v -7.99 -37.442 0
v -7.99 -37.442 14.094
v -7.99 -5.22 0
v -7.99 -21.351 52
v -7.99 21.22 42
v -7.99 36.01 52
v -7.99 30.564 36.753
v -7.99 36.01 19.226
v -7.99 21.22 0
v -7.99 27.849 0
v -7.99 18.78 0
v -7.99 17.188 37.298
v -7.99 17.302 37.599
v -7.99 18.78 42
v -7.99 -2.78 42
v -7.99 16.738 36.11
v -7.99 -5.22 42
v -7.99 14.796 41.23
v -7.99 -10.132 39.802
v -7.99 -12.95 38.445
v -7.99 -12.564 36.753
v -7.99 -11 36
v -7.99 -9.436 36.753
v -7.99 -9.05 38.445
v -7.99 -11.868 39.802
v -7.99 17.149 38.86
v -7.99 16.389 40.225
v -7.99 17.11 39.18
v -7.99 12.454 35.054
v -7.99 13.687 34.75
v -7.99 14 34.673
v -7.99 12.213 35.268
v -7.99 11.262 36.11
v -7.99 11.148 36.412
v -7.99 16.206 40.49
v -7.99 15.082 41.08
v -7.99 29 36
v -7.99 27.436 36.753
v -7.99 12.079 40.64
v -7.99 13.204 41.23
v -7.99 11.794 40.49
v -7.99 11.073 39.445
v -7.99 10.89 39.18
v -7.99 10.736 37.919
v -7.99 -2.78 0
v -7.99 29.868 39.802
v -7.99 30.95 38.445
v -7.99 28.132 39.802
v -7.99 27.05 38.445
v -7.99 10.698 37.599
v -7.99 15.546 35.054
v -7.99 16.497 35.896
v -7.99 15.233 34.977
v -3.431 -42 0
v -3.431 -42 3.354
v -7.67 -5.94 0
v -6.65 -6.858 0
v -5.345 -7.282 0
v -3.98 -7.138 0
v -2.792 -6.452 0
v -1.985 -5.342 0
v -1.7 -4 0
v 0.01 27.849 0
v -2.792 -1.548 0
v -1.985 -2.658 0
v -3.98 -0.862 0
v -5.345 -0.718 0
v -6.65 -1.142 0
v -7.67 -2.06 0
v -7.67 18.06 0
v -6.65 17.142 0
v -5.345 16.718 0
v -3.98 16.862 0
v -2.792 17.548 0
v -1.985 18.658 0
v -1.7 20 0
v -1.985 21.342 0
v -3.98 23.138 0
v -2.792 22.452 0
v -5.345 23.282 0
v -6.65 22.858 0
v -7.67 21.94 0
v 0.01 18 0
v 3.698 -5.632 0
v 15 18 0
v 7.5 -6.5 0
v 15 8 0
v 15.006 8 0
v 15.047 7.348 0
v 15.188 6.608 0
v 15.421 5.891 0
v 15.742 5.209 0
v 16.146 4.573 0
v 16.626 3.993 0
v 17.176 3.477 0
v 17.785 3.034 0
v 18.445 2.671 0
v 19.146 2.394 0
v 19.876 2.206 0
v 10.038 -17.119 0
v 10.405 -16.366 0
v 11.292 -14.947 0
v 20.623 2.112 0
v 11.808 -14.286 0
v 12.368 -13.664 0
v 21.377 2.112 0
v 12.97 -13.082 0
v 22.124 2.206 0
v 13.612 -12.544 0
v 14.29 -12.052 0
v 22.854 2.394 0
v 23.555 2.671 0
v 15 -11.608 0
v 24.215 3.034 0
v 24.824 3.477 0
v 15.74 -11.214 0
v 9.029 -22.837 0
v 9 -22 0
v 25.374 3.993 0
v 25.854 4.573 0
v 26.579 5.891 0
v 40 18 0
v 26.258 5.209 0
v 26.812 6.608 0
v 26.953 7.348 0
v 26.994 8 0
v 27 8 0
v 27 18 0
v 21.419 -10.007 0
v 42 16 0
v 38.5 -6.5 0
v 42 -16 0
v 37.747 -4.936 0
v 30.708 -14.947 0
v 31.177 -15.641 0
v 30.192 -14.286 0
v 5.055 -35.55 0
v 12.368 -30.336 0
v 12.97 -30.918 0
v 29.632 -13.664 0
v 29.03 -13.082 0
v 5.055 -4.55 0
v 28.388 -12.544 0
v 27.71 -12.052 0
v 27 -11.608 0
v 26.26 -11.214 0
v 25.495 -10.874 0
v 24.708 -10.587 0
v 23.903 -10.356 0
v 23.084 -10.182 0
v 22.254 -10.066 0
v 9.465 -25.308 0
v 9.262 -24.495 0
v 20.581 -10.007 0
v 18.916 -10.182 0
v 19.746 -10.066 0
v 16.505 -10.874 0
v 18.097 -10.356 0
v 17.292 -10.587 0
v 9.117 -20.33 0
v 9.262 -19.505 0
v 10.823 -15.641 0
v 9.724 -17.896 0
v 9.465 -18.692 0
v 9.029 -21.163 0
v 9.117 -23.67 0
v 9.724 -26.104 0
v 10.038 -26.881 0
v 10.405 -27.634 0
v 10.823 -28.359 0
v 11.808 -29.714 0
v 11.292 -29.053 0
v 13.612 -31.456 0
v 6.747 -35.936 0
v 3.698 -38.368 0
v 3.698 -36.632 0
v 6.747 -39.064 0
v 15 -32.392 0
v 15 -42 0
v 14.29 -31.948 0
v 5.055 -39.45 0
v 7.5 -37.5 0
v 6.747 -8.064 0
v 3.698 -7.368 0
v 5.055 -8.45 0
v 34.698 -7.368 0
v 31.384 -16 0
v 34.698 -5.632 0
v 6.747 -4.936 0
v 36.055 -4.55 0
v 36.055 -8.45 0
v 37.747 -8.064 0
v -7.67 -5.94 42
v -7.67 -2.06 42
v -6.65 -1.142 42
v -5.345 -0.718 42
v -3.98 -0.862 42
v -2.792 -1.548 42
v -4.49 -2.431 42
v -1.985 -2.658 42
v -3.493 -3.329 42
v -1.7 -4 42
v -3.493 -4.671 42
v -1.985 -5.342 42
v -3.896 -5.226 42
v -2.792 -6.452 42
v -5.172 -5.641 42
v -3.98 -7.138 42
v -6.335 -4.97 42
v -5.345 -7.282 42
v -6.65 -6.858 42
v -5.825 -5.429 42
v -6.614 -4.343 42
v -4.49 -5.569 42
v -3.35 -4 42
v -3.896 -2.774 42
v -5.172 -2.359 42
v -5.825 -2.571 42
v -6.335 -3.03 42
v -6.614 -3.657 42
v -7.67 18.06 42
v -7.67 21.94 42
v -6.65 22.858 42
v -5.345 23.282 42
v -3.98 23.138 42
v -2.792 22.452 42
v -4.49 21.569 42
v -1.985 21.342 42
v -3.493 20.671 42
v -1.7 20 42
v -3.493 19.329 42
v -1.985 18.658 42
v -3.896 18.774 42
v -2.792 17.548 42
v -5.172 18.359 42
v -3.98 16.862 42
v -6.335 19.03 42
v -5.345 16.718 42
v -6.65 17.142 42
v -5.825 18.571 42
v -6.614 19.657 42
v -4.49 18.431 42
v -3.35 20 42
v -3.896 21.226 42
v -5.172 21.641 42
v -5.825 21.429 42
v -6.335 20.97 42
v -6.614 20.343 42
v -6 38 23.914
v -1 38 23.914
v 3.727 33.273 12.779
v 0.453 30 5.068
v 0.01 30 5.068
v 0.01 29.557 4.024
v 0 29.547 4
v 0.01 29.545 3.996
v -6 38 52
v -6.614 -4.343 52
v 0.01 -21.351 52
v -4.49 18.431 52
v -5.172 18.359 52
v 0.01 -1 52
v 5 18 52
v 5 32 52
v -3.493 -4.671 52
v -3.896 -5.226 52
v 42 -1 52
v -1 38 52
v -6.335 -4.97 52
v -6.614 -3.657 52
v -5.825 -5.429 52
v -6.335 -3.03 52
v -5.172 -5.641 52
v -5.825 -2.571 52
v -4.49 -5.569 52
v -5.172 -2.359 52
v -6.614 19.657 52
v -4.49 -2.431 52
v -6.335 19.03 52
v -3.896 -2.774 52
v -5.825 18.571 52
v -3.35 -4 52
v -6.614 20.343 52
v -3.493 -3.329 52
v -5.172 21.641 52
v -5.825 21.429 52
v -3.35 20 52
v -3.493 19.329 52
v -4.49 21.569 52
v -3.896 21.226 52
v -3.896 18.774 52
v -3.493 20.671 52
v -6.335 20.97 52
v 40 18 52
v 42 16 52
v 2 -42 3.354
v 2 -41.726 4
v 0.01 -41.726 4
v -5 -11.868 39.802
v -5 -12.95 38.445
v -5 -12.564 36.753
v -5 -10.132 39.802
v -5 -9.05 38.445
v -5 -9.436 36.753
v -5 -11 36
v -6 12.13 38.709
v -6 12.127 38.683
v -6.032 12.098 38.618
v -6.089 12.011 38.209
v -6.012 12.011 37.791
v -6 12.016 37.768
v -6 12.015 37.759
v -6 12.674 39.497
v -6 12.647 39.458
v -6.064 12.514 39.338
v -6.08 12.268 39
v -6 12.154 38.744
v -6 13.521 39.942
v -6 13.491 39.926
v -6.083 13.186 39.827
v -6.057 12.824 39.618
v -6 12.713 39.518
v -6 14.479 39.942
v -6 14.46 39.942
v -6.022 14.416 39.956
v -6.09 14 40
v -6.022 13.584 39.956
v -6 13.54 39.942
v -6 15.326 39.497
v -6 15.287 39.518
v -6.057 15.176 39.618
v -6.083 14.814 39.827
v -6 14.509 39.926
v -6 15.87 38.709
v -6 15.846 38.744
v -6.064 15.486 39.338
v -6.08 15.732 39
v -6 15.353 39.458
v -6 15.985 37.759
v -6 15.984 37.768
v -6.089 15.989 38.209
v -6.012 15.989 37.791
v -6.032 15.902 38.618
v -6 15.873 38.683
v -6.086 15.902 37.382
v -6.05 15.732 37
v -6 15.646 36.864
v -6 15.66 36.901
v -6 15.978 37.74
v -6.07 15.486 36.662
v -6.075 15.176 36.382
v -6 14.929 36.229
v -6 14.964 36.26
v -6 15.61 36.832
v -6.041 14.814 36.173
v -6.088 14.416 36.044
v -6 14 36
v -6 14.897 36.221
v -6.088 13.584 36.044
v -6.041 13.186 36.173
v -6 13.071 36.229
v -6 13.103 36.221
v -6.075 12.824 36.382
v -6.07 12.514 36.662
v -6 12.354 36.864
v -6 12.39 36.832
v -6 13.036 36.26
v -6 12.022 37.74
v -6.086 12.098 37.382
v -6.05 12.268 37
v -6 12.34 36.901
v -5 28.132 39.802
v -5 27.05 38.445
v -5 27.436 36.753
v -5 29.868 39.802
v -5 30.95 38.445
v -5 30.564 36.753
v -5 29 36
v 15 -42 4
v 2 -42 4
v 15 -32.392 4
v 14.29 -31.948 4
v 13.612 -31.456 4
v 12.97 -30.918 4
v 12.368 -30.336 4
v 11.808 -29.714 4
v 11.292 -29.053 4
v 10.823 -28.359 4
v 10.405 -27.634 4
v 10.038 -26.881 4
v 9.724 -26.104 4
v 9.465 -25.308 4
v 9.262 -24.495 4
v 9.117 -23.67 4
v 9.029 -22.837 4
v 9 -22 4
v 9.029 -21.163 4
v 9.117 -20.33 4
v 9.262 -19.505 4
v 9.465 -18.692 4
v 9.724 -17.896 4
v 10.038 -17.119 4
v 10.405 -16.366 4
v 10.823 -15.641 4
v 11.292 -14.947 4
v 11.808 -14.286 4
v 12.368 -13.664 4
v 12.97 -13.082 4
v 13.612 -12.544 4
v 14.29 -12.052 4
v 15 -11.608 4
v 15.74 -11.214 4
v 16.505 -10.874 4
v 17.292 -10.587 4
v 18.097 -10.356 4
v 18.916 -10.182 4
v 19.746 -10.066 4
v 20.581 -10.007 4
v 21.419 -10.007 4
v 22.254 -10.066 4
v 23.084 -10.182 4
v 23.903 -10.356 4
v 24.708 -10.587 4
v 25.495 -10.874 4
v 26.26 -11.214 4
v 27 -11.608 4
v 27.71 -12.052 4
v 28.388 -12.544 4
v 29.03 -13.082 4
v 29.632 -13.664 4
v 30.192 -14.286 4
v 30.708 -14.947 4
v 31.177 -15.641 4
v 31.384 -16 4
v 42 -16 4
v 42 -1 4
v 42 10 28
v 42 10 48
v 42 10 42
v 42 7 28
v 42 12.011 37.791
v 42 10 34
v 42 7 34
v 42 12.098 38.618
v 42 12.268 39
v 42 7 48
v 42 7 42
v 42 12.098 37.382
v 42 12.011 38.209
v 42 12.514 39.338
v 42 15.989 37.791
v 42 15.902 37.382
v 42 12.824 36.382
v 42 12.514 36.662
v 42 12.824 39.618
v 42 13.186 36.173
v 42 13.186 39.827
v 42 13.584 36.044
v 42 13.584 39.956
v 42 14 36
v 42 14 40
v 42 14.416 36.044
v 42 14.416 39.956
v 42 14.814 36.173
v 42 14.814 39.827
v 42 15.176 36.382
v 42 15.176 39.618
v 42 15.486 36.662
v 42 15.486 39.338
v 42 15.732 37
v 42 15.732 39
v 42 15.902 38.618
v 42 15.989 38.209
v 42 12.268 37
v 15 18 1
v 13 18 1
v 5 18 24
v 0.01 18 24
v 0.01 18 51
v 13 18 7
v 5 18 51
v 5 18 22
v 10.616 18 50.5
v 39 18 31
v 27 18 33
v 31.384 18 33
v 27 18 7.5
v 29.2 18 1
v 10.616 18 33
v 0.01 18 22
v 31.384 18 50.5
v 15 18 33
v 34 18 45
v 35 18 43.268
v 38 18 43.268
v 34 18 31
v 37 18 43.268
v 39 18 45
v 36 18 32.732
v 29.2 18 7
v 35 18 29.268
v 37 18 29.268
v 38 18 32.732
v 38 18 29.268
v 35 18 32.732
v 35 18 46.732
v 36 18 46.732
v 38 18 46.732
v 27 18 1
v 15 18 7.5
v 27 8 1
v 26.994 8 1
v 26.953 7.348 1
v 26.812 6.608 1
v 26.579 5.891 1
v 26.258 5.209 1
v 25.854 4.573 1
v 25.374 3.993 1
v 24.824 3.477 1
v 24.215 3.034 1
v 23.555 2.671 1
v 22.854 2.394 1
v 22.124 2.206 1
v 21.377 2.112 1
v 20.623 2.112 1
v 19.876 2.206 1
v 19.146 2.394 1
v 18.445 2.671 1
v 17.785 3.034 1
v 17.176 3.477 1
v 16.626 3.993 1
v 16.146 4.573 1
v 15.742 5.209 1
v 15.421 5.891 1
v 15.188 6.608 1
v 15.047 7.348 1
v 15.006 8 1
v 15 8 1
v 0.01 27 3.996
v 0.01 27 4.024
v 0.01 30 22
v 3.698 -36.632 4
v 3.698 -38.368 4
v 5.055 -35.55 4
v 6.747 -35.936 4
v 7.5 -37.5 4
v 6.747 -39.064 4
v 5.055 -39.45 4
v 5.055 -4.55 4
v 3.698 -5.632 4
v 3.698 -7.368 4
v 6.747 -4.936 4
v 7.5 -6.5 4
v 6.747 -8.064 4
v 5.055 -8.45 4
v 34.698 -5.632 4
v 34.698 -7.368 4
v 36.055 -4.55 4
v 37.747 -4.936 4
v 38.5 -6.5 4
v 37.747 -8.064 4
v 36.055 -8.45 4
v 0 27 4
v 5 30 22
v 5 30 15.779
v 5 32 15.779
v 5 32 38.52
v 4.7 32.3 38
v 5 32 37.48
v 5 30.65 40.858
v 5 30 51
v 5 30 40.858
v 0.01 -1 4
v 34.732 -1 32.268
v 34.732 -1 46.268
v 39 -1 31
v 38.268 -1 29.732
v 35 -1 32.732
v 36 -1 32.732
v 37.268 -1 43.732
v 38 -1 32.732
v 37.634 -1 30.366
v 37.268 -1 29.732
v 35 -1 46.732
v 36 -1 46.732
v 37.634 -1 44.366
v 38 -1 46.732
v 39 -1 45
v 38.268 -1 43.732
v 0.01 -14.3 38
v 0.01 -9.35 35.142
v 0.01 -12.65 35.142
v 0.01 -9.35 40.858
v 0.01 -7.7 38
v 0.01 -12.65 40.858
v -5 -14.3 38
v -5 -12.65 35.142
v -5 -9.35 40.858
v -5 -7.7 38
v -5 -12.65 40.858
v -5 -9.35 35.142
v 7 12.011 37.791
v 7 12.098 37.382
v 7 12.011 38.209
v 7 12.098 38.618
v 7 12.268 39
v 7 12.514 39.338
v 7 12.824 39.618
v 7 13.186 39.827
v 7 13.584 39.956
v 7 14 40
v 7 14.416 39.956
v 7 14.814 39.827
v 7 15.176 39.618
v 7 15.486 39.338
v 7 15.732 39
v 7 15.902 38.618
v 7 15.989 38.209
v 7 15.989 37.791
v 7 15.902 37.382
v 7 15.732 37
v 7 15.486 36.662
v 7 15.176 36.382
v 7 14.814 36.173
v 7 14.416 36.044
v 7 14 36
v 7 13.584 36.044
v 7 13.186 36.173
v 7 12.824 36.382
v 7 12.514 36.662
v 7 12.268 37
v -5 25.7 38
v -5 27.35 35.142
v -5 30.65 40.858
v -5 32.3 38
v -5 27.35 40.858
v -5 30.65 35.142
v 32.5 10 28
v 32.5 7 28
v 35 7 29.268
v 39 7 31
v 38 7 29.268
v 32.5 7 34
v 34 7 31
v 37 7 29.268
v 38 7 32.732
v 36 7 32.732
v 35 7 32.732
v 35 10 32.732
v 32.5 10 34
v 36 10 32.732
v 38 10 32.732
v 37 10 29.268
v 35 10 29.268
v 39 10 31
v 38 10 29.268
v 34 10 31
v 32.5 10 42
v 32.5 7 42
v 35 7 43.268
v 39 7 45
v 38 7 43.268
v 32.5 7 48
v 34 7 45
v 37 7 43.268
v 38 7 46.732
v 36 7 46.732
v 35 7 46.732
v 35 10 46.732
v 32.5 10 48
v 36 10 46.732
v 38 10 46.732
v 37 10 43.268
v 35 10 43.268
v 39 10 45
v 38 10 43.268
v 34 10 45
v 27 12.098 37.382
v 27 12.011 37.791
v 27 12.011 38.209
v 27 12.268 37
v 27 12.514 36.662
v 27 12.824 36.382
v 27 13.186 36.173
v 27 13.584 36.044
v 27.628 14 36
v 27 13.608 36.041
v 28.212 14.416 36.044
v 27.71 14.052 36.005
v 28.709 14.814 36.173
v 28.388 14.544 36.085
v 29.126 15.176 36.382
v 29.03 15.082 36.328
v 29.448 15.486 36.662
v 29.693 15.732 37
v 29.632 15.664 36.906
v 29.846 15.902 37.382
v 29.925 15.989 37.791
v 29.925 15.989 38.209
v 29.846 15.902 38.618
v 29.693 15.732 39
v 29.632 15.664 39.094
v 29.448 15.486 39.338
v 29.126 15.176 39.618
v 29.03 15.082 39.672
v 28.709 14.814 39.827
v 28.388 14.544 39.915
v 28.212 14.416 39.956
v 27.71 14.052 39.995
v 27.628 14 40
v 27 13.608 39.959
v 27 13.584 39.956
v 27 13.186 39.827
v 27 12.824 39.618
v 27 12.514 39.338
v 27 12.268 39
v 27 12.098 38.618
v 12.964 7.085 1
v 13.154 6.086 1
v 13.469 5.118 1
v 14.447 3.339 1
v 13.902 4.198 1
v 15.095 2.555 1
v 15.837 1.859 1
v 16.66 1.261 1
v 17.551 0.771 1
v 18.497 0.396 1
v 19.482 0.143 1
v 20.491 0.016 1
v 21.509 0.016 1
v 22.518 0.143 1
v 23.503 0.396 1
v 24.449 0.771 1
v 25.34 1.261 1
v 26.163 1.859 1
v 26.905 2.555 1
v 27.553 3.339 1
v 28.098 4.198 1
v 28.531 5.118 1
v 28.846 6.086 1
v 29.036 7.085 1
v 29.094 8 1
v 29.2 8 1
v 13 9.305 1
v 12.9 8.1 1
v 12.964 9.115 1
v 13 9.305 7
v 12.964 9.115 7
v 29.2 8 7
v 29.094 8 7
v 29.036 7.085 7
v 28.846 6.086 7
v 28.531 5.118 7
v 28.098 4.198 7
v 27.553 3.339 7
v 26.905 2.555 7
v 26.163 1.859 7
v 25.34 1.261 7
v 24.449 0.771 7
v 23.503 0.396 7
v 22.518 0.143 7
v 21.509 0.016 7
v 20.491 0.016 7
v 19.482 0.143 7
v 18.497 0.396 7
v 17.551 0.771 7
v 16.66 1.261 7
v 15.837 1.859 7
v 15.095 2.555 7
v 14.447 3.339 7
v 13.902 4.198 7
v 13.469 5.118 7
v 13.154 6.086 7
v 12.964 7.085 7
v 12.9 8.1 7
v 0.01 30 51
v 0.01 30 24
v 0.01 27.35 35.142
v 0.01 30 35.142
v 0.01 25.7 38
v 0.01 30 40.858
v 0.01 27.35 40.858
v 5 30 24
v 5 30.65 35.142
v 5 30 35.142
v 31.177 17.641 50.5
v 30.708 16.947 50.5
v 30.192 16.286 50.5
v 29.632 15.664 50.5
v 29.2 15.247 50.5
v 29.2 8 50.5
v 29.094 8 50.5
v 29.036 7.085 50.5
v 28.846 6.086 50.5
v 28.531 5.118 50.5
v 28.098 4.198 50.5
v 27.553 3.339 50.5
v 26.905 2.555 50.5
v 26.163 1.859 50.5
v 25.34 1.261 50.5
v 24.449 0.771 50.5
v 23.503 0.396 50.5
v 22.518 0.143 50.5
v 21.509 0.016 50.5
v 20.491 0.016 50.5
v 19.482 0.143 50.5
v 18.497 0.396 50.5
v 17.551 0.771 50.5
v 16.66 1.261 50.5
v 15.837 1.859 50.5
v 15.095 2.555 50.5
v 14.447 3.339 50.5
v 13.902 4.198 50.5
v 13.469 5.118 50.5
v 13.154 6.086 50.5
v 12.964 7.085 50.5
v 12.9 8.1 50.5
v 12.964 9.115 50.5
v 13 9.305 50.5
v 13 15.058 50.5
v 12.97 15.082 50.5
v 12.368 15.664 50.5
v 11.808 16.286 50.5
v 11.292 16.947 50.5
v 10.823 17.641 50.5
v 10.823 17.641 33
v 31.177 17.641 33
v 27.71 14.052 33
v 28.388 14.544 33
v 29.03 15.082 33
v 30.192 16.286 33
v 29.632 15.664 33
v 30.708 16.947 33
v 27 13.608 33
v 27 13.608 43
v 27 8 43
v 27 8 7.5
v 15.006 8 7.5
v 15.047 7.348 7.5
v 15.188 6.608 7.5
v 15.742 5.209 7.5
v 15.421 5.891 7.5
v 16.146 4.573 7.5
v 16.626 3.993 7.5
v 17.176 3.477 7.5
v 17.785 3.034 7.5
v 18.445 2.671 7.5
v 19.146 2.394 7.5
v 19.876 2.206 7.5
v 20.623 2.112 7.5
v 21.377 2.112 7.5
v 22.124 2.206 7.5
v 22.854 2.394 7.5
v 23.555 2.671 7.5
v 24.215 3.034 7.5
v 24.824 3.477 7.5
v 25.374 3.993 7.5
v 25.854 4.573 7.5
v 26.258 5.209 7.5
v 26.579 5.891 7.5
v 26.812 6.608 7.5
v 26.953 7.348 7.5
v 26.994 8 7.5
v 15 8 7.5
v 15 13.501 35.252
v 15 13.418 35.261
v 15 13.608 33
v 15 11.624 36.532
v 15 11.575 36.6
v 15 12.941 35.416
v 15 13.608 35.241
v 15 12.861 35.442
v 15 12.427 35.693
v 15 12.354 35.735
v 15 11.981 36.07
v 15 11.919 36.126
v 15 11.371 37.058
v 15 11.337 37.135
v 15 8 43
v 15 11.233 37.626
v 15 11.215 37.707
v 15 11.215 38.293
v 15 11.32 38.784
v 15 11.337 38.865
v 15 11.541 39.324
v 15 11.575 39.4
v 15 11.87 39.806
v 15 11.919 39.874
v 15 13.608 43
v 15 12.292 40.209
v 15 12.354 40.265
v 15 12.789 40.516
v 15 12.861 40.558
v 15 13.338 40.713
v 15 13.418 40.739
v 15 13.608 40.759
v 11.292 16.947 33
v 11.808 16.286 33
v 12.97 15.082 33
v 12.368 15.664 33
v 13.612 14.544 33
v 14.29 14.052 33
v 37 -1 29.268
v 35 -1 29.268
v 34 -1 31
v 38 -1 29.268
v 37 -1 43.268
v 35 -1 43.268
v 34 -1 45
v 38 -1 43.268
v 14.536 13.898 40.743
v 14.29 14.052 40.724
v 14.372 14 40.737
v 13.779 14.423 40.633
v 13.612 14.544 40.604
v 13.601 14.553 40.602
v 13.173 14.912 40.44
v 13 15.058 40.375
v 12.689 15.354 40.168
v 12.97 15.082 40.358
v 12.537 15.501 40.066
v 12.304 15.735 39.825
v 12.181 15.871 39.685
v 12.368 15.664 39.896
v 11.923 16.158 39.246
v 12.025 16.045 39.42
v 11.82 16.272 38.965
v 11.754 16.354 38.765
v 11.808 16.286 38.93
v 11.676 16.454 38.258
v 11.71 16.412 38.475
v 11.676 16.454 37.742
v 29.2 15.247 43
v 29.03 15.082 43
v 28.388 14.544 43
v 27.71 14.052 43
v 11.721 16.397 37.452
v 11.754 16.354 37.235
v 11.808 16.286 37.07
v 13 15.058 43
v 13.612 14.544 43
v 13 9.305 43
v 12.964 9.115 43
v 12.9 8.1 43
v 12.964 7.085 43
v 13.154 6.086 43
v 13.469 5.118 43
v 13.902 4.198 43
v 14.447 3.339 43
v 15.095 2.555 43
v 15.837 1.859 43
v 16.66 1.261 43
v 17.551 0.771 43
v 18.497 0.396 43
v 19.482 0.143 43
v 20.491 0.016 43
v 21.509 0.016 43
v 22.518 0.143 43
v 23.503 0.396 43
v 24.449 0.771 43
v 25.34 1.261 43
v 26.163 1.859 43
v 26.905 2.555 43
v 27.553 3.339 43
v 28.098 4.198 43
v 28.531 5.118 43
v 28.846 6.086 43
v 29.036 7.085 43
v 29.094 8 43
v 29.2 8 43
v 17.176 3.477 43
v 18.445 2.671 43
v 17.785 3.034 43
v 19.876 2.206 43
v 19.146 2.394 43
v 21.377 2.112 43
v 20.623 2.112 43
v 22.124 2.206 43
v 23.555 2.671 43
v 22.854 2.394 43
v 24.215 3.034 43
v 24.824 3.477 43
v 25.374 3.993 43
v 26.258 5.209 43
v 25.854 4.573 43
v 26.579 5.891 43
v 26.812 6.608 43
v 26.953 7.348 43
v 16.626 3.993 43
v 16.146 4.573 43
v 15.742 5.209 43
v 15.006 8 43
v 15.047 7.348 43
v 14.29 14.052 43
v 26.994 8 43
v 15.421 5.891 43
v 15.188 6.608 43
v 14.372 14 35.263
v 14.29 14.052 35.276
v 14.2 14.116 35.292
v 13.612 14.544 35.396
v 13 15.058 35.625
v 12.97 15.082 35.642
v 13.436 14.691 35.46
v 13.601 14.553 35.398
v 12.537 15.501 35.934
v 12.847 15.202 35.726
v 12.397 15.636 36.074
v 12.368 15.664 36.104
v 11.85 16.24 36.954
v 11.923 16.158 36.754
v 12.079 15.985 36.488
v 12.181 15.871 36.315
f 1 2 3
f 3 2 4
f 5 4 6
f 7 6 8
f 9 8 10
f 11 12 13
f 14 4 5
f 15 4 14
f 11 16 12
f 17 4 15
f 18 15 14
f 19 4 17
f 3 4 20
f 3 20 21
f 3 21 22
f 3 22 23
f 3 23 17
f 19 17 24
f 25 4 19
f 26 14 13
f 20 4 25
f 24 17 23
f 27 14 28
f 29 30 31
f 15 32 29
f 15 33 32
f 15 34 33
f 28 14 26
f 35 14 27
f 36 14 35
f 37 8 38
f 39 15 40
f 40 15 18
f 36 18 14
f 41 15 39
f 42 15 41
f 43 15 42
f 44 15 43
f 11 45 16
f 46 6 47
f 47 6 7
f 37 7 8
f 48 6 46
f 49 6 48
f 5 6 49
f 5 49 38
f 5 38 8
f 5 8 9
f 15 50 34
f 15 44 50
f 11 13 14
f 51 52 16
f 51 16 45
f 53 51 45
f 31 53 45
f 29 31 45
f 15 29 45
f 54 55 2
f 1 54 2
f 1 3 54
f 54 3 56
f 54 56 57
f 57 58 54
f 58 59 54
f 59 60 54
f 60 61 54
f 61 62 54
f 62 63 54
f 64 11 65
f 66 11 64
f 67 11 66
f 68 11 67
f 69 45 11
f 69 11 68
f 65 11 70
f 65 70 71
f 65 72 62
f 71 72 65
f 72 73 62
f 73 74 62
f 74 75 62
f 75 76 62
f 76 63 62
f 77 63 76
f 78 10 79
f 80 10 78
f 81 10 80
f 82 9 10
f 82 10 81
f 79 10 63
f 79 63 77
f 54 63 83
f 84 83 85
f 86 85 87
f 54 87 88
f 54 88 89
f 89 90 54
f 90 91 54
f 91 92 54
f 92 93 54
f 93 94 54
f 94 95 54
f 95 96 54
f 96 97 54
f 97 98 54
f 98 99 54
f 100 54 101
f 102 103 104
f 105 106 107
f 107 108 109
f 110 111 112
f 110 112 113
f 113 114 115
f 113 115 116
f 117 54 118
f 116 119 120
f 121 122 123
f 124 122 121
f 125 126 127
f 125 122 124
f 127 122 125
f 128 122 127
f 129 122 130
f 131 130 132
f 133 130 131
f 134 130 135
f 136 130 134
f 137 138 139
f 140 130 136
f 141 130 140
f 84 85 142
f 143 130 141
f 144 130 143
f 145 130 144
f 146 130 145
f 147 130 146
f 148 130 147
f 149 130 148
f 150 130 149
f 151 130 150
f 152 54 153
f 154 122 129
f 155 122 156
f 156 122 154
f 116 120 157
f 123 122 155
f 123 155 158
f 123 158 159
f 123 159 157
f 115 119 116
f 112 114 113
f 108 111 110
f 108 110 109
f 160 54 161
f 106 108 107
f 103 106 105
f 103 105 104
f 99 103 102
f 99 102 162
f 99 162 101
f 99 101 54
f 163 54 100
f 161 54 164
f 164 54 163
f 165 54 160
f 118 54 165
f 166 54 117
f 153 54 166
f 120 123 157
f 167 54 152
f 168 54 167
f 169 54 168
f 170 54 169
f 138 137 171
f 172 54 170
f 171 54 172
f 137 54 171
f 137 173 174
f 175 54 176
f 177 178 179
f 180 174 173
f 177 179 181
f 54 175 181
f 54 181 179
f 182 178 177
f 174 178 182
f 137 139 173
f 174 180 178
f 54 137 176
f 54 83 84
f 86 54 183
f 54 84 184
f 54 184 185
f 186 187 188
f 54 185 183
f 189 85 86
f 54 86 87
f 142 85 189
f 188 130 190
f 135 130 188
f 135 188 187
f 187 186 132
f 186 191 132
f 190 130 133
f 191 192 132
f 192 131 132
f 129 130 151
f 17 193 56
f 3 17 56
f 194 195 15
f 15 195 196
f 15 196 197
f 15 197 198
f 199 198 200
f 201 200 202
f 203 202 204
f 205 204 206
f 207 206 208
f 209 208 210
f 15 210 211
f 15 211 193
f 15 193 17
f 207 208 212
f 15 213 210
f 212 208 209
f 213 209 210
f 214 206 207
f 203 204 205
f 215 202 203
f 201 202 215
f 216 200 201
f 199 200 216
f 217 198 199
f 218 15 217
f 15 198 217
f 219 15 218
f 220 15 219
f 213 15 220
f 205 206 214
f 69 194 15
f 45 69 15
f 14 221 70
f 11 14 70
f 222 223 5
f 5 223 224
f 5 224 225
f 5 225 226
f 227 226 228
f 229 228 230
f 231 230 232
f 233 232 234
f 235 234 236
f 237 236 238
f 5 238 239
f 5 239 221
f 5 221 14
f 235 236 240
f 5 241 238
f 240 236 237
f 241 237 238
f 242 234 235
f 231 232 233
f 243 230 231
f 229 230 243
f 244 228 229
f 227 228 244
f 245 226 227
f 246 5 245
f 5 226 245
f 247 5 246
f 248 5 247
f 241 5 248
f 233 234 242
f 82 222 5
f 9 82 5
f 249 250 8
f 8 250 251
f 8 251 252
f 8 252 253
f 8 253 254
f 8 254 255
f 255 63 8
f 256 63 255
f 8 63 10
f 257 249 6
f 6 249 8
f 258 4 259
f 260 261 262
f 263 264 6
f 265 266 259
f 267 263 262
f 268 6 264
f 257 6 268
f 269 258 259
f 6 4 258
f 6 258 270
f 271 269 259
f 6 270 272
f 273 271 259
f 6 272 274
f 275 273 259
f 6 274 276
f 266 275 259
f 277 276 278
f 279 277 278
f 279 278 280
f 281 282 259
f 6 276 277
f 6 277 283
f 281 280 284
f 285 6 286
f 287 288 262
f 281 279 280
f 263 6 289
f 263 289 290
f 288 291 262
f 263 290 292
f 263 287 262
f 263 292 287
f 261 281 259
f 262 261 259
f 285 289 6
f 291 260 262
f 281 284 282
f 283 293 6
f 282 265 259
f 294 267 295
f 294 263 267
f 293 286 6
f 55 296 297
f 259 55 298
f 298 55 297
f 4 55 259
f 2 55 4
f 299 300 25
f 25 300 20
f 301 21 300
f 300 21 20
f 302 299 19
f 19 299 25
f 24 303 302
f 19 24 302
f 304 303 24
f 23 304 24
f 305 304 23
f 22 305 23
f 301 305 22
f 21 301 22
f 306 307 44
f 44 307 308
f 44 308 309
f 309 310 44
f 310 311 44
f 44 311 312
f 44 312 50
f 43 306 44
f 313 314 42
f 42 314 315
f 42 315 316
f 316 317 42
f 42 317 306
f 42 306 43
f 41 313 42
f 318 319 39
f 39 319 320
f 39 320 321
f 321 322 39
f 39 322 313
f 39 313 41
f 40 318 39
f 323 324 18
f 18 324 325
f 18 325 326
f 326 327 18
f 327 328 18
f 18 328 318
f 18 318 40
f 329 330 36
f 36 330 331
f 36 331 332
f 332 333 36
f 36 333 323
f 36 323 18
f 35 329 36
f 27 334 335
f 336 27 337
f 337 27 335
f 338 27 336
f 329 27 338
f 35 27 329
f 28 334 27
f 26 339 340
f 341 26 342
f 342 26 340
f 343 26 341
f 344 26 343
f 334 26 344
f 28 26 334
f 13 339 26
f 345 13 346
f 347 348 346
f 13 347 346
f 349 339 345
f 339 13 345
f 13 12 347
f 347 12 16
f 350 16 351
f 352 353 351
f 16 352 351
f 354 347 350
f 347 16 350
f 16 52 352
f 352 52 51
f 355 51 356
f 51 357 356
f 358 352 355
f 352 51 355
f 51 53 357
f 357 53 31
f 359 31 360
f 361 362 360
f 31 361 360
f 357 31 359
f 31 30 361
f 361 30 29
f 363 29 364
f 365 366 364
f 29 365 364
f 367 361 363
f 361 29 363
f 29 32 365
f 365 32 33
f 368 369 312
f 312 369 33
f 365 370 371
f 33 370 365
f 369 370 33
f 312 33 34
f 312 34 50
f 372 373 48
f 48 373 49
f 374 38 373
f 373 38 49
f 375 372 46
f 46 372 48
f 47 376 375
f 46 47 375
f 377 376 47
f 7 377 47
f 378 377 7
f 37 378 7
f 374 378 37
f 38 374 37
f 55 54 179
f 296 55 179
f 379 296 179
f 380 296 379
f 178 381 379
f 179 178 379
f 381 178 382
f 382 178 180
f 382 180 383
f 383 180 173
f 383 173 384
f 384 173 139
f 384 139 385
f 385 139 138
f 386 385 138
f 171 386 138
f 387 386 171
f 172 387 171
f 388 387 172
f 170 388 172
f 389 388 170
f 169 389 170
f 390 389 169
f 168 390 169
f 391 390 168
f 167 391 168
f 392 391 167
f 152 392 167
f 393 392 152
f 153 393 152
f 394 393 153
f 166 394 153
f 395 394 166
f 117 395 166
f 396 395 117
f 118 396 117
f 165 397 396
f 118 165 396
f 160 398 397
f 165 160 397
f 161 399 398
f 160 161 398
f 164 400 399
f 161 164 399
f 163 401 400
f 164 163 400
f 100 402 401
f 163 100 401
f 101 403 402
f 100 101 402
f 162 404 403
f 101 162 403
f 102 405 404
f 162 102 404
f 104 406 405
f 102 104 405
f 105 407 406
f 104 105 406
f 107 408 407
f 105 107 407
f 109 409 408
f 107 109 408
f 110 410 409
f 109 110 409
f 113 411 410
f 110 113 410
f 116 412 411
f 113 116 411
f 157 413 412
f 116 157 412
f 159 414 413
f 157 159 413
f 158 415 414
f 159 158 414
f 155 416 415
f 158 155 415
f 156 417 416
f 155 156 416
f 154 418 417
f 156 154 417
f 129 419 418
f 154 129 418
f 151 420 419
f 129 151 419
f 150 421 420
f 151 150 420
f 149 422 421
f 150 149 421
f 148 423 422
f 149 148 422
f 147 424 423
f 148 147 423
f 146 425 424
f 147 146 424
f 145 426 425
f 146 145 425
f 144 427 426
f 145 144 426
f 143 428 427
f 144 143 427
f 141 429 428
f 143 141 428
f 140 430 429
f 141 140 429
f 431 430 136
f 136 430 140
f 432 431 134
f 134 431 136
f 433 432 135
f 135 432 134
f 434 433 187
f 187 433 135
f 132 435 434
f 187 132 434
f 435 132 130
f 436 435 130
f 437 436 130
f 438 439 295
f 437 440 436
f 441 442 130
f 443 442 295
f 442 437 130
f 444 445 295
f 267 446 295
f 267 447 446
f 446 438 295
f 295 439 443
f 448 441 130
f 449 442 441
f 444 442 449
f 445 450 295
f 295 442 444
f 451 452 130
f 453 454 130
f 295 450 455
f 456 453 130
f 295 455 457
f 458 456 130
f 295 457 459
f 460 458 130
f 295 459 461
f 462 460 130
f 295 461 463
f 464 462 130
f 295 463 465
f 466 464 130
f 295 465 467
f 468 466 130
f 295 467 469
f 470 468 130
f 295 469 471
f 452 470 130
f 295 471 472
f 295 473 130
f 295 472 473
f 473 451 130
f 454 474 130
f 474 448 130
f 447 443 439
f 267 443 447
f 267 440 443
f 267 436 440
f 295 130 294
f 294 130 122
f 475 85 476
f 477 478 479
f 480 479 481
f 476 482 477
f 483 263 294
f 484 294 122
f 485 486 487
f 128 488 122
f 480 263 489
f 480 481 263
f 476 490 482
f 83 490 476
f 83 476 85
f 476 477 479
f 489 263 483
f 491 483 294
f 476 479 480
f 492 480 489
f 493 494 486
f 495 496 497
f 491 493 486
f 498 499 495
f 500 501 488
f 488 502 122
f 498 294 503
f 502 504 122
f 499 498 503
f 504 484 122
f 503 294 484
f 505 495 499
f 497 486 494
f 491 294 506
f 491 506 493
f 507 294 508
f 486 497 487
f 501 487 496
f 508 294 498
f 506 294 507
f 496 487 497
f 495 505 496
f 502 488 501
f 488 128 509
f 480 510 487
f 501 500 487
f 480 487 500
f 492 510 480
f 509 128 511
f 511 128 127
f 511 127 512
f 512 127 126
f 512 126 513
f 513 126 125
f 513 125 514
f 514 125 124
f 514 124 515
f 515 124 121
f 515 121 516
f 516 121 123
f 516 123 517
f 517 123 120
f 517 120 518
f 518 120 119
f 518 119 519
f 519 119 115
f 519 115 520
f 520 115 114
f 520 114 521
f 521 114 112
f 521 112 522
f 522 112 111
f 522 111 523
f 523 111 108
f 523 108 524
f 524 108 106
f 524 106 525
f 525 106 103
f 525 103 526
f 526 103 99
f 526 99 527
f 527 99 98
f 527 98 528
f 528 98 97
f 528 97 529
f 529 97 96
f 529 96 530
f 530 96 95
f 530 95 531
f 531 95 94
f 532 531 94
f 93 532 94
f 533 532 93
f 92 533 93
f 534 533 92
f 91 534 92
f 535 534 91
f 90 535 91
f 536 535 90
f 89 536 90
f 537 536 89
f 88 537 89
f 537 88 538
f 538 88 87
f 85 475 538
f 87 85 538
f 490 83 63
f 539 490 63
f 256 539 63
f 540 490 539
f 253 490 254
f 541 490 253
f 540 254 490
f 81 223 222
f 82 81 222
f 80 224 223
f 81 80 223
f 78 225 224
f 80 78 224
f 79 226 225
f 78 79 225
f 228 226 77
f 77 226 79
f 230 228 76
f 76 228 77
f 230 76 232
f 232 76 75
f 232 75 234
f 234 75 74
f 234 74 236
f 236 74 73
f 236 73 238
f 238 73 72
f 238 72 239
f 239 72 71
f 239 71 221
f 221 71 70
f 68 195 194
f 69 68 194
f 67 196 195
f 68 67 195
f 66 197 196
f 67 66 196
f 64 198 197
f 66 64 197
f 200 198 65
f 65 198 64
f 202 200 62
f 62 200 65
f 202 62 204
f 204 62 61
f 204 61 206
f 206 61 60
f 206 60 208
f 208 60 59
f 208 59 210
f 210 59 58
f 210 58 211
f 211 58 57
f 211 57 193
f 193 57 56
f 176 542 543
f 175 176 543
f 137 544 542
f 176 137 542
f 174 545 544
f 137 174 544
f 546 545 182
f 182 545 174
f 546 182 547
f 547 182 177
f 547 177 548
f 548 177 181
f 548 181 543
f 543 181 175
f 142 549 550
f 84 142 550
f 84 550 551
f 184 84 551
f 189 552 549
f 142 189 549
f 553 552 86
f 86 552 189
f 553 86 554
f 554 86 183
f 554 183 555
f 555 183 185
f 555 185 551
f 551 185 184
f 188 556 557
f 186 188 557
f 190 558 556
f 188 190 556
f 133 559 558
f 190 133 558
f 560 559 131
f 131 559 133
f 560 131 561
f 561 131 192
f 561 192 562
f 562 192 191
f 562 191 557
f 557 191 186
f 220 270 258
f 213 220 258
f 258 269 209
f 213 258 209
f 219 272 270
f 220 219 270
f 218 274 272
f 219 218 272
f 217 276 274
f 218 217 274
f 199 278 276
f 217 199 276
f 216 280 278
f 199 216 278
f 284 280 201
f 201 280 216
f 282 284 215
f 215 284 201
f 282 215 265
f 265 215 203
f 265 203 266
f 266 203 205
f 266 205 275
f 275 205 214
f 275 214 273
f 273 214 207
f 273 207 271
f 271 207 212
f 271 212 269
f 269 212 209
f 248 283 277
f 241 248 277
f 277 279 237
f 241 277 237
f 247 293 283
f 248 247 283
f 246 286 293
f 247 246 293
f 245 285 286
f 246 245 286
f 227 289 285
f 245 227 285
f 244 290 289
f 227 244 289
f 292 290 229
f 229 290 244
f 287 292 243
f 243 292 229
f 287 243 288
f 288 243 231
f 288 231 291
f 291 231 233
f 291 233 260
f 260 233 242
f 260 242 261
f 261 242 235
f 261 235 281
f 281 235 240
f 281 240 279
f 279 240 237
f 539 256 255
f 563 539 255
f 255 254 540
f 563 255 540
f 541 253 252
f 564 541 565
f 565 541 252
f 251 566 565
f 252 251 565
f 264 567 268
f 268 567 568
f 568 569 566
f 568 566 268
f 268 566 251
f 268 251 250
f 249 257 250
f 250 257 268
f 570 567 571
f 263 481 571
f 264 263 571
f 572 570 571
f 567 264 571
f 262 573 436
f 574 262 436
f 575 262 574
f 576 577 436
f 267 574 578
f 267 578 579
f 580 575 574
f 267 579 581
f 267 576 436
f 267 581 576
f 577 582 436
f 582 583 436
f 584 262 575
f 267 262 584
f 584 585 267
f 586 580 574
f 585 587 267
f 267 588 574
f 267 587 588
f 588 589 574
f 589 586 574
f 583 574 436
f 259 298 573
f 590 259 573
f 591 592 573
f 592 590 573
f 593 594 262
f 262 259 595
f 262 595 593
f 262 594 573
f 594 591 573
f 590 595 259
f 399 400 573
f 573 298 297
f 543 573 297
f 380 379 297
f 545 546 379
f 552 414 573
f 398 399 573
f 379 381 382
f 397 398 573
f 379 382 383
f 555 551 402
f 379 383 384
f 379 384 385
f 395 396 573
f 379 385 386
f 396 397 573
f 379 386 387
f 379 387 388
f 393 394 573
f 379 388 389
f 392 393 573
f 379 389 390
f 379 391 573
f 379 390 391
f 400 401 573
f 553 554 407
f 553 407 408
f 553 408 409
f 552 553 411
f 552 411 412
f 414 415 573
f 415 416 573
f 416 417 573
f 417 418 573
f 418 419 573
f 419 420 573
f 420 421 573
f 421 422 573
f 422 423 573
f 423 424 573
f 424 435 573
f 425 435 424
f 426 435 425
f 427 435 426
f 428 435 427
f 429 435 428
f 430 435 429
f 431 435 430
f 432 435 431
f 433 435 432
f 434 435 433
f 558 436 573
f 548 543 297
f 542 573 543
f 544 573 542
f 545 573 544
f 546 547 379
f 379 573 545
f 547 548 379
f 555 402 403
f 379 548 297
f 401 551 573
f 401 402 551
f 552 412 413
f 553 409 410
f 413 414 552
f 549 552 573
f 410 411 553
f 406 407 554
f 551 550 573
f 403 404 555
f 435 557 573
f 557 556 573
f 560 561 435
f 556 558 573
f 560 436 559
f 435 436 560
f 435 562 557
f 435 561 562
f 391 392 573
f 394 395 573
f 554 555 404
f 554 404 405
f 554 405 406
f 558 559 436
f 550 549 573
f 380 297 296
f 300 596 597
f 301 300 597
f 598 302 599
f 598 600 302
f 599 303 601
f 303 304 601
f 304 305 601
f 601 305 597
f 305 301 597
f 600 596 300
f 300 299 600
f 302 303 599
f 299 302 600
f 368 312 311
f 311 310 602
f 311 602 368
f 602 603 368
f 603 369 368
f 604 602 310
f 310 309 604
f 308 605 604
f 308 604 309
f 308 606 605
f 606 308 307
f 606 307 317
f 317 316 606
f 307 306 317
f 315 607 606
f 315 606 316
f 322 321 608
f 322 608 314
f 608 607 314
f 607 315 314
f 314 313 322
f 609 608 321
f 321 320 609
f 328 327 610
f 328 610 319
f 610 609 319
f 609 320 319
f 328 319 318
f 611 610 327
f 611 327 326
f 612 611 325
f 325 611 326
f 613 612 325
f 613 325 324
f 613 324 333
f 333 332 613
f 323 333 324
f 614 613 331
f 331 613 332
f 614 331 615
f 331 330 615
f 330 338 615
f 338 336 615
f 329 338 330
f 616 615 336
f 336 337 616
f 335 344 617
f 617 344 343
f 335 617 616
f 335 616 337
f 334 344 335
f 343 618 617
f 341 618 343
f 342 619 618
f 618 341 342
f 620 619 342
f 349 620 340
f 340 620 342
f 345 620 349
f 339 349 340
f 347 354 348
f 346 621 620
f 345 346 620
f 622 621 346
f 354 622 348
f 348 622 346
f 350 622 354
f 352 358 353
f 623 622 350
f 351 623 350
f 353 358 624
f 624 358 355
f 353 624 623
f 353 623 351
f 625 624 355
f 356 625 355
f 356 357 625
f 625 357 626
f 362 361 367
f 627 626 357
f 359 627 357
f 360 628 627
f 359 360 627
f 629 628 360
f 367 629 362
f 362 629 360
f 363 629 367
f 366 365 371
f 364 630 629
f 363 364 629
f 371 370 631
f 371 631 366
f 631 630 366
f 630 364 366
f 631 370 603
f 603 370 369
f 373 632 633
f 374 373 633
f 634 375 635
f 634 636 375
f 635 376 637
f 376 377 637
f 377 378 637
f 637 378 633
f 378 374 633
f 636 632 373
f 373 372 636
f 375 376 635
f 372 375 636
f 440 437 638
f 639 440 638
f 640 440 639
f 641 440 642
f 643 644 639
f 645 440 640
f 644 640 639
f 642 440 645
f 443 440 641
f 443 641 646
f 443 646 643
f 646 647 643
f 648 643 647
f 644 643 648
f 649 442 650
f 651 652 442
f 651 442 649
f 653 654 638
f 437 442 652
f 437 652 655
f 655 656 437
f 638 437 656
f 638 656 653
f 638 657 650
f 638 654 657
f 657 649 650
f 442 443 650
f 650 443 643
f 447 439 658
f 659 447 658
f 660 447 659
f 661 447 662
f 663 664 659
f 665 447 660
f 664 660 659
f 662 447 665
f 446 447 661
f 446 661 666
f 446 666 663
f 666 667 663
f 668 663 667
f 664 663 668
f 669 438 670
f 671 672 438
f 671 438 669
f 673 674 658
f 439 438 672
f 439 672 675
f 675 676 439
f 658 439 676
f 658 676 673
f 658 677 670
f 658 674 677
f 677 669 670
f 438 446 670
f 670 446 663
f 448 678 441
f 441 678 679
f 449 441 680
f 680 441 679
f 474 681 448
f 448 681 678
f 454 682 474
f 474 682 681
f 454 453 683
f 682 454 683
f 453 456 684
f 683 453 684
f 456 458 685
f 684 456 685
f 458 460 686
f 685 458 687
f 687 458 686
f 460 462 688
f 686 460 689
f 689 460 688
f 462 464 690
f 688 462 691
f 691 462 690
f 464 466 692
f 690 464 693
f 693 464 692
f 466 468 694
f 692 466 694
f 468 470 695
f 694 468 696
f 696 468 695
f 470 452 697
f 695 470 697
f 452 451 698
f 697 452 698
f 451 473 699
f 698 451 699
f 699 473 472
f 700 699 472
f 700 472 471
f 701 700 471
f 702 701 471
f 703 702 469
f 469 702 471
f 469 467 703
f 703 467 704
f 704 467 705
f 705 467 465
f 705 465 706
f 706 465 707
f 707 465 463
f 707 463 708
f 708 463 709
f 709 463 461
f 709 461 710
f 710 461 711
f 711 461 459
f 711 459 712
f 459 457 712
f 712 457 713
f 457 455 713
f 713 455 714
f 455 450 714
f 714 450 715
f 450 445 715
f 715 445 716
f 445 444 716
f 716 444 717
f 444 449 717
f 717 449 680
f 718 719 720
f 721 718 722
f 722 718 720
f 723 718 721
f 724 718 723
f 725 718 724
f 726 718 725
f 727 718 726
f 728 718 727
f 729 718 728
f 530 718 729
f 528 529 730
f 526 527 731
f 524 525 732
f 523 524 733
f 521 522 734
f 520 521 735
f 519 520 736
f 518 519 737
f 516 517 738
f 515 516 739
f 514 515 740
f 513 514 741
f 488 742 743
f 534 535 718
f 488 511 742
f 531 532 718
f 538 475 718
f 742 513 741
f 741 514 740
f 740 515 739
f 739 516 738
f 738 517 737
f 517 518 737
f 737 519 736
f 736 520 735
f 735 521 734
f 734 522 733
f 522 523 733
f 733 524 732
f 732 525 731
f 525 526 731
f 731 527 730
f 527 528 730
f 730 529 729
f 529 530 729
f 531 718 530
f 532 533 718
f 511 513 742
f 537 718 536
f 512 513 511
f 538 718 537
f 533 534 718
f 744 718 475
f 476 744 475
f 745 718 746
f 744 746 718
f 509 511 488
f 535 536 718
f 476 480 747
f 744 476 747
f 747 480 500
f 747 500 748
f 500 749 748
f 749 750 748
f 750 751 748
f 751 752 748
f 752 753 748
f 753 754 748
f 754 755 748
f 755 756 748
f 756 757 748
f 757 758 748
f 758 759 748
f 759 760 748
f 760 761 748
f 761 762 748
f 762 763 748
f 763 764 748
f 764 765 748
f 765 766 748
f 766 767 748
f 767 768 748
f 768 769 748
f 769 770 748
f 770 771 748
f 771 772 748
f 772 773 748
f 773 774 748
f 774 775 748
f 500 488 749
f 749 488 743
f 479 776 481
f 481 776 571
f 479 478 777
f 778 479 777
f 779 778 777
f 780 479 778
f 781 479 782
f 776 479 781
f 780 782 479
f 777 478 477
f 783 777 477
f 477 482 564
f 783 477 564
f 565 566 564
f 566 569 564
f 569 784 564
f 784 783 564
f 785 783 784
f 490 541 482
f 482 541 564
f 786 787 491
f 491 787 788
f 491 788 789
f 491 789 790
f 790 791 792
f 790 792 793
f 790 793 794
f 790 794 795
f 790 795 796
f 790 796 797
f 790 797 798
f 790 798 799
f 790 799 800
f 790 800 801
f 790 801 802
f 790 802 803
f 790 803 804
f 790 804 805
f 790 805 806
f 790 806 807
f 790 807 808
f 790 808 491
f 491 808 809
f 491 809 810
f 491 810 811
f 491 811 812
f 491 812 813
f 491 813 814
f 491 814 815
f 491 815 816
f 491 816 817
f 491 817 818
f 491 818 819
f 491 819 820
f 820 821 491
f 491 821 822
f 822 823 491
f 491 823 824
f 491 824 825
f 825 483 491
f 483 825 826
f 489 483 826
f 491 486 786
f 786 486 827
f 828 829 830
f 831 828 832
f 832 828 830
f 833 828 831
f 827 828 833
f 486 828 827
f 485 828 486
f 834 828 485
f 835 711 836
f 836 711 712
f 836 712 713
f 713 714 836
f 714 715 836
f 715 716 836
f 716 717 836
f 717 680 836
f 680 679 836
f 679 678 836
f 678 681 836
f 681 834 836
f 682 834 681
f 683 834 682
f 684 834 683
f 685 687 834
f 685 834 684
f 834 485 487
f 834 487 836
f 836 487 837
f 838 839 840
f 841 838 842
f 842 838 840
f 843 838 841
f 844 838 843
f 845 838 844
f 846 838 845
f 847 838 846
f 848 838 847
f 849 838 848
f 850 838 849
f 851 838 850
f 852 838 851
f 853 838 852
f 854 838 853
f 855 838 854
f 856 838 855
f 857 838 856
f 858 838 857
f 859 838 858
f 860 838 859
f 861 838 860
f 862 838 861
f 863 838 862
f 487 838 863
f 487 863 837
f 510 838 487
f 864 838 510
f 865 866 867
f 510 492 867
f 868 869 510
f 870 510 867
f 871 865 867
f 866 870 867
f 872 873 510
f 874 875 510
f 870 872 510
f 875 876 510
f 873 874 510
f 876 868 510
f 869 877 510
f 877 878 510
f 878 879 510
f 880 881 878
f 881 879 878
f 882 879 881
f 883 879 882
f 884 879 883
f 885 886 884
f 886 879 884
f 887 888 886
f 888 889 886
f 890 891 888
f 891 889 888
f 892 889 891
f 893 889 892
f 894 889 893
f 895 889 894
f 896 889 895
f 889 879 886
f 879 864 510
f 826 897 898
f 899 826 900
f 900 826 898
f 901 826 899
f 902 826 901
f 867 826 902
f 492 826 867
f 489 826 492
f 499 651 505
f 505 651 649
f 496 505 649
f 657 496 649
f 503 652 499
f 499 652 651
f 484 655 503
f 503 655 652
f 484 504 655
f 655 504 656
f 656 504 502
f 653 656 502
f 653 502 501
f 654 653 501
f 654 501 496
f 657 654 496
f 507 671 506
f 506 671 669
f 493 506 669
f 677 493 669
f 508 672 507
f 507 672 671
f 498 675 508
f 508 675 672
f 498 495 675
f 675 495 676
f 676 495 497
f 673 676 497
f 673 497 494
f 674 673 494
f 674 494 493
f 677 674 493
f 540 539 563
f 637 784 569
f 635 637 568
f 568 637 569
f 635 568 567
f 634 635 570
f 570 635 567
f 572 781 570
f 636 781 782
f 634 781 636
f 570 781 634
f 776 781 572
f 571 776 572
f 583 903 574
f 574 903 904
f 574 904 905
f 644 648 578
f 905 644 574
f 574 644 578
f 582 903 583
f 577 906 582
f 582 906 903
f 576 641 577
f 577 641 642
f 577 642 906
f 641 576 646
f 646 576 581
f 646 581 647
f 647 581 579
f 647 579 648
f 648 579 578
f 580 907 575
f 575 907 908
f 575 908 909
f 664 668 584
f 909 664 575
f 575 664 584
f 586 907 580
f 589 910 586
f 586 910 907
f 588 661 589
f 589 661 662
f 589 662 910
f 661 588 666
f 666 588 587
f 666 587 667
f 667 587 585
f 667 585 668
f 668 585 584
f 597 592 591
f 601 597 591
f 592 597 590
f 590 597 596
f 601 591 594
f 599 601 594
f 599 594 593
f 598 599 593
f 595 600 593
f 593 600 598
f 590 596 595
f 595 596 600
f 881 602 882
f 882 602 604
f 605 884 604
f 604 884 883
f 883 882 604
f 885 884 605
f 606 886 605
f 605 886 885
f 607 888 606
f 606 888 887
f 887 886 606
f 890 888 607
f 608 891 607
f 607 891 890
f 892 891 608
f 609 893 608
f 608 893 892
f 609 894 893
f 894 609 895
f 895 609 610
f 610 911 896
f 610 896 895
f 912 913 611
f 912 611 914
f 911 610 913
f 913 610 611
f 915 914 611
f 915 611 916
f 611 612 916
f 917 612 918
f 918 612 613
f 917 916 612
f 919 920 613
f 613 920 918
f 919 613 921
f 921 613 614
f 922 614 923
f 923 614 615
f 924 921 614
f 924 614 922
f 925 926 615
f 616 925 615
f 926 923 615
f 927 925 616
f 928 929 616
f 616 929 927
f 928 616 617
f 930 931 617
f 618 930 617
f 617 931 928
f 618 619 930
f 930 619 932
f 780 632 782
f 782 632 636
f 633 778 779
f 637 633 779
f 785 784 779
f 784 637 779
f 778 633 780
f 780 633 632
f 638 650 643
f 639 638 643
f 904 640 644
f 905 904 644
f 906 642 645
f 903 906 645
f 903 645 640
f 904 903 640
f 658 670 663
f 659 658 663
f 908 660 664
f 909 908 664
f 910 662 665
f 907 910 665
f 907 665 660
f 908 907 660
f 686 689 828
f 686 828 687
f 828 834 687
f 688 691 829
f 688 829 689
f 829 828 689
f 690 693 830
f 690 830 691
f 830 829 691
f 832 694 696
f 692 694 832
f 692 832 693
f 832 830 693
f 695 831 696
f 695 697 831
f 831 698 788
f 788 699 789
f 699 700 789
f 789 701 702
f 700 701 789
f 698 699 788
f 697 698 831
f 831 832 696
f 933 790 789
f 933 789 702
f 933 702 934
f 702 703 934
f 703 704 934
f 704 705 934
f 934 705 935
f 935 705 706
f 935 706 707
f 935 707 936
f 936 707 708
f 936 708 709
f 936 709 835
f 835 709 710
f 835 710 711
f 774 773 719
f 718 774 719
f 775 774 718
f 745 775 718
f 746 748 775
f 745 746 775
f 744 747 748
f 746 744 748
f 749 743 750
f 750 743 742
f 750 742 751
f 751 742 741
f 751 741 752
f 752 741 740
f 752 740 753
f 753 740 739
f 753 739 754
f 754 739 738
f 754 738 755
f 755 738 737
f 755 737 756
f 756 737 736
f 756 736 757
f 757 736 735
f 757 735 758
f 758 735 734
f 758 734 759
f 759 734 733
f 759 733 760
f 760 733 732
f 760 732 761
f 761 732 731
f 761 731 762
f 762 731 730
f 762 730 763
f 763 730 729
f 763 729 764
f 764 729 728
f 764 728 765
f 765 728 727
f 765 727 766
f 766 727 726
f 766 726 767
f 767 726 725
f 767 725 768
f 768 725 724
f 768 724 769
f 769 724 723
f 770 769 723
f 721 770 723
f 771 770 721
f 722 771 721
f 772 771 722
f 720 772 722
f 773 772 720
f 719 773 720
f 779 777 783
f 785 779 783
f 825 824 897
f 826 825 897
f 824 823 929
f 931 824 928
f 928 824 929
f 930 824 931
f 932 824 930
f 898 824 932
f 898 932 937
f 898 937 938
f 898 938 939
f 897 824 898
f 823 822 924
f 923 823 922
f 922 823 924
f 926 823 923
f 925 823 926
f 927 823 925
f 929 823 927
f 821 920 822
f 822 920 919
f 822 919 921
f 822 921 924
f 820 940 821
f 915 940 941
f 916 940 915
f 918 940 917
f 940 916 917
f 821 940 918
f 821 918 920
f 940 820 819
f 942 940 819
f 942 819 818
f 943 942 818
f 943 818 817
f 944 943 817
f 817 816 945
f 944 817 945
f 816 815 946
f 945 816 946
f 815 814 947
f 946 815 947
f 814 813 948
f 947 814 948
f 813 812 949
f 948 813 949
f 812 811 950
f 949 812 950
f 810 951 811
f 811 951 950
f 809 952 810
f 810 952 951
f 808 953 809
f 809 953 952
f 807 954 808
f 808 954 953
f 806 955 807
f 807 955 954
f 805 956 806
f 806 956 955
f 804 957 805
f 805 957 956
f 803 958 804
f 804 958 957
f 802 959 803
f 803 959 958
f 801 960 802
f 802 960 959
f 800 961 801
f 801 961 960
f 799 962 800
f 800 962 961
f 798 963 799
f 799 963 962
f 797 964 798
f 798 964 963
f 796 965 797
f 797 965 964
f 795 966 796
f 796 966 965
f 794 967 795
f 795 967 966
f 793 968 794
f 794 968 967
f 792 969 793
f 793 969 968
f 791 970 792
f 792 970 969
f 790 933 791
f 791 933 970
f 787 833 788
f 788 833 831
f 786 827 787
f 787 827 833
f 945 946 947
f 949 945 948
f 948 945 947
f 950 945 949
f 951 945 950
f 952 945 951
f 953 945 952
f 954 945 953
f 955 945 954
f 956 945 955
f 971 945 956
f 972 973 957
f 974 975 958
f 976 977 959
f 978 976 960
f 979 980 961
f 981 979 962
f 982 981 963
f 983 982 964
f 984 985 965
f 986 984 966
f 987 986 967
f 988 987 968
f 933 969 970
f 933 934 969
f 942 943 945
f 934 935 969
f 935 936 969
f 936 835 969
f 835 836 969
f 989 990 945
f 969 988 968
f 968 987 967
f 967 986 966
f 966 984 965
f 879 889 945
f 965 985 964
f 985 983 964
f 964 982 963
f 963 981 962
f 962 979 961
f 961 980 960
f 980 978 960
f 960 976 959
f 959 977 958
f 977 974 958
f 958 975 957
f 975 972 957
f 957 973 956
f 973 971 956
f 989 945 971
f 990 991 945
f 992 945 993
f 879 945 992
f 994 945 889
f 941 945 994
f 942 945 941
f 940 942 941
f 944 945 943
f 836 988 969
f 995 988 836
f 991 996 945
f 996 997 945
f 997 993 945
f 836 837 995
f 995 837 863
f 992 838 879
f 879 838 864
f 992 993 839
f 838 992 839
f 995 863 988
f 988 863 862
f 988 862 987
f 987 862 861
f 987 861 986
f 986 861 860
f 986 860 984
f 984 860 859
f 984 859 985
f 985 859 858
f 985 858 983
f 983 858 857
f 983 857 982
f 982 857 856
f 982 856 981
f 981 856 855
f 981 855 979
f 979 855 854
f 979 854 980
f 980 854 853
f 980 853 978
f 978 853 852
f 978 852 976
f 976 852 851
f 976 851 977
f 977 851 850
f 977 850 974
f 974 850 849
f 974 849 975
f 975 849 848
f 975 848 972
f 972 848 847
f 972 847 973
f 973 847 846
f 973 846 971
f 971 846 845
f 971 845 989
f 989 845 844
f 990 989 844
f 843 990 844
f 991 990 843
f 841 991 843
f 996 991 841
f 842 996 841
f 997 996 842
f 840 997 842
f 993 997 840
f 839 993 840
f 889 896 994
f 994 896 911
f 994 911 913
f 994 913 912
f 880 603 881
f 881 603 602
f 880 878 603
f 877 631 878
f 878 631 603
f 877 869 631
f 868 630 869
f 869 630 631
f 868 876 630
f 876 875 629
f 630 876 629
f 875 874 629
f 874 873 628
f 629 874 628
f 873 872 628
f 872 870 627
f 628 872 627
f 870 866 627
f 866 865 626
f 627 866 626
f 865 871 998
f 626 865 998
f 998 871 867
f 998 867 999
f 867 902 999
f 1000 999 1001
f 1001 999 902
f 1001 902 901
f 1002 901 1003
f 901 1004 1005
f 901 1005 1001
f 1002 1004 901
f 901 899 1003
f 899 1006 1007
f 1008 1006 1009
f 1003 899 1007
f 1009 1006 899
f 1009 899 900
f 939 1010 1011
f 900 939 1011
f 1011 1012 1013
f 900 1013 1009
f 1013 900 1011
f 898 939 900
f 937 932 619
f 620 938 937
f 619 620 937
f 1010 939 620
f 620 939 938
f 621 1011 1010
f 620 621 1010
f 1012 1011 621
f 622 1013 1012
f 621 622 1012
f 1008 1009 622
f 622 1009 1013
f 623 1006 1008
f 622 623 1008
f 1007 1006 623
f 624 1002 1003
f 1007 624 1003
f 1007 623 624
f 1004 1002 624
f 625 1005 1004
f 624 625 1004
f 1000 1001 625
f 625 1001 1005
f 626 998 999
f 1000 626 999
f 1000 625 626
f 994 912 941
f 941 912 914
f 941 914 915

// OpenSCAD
// PRUSA iteration3
// NEMA 17 extruder body
// GNU GPL v3
// Josef Průša <iam@josefprusa.cz>, Kliment Yanev and contributors
// http://www.reprap.org/wiki/Prusa_Mendel
// http://prusamendel.org

module nozzlemount(){
rotate([0,90,0]) cylinder(r=2, h=70, $fn=30);
translate([17,0,0]) rotate([0,90,0]) cylinder(r2=3,r1=2, h=10, $fn=30);
translate([1,0,0]) rotate([0,90,0]) cylinder(r1=4, r2=2, h=3);
translate([0,15,0]) rotate([0,90,0]) cylinder(r=2, h=70);
translate([10-5,15,0]) rotate([0,90,0]) rotate([0,0,30]) cylinder(r=3.3, h=70,$fn=6);
translate([0,-25,0]) rotate([0,90,0]) cylinder(r=2, h=70);
translate([10-5,-25,0]) rotate([0,90,0]) rotate([0,0,30])cylinder(r=3.3, h=70,$fn=6);
}


difference(){
union(){
translate([0,-1,0])cube([42,19,52]);
translate([0,-42,0]) cube([42,42+3,4]);
translate([-7.99,-42,0]) cube([8,80,52]);

translate([-1,30,0]) cube([6, 7, 52]);


translate([-1,15,51]) cube([6, 20, 1]);
translate([-1,15,22]) cube([6, 20, 2]);

}

//antiwarpagenation

translate([46,-91,-1])rotate([0,0,45])cube(40);
translate([-11,-91,-1])rotate([0,0,45])cube([40,40,60]);
translate([46,12,-1])rotate([0,0,45])cube([40,40,60]);
translate([-32,12,-1])rotate([0,0,45])cube([40,40,60]);
translate([6,31,-1])rotate([0,0,45])cube([40,40,60]);

// motor circle cut
translate([0,-1,0.5]){
translate([21,-21,-1]) cylinder(r=12, h=5, $fn=90);

 translate([15,-45,-1]) cube([30,30,5]);

translate([21+15.5,-21+15.5,-1]) cylinder(r=2, h=5);
translate([21+15.5,-21-15.5,-1]) cylinder(r=2, h=5);
translate([21-15.5,-21+15.5,-1]) cylinder(r=2, h=5);
translate([21-15.5,-21-15.5,-1]) cylinder(r=2, h=5);
}



// idler bearing cutout

translate([21,24,33]) cylinder(r=12, h=17.5, $fn=90);



translate([21,8.1,7.5]) cylinder(r=6, h=43, $fn=50);

translate([21,8.1,-1]) cylinder(r=6, h=3, $fn=50);
// Second filament drive bearing
translate([21,8.1,1]) cylinder(r=8.1, h=6, $fn=50);
// Second filament drive bearing insert cutout

translate([13,8,43]) cube([16.2,20,7.5]);


translate([21,8.1,-5+52-4]) cylinder(r=8.1, h=7.5, $fn=50);
translate([-6+21,8,7.5]) cube([12,12,40]);

translate([-6+21,8,-50+7]) cube([12,12,50]);


translate([13,8,1]) cube([16.2,20,6]);

//mounting to carriage
translate([-5,20,-28]){
translate([0,0,0])rotate([0,0,0])cylinder(r=3.3, h=70, $fn=15);
translate([0,0-24,0])rotate([0,0,0])cylinder(r=3.3, h=70, $fn=15);
translate([0,0,30])rotate([0,0,0])cylinder(r=3.3/2, h=70, $fn=15);
translate([0,0-24,30])rotate([0,0,0])cylinder(r=3.3/2, h=70, $fn=15);
}

// idler nuts and filament channels

translate([0,0,-2]){
translate([-10,2+8+4,52-12]) nozzlemount();
//translate([-10,2+8+4,52-12-25]) nozzlemount();

translate([32.5,7,52-12-7-3]) cube([15,3,6]);

translate([32.5,7,52-12-7-3+14]) cube([15,3,6]);


//translate([5+32,-1,52-12+7]) rotate([0,90,90]) rotate([0,0,30]) cylinder(r=3.3, h=10, $fn=6);
//translate([5+32,-1,52-12-7]) rotate([0,90,90]) rotate([0,0,30]) cylinder(r=3.3, h=10, $fn=6);



translate([5+32,-1,52-12+7]) rotate([0,90,90]) rotate([0,0,30]) cylinder(r=2, h=40, $fn=6);
translate([5+32,-1,52-12-7]) rotate([0,90,90]) rotate([0,0,30]) cylinder(r=2, h=40, $fn=6);
translate([5+31,-1,52-12+7]) rotate([0,90,90]) rotate([0,0,30]) cylinder(r=2, h=40, $fn=6);
translate([5+31,-1,52-12-7]) rotate([0,90,90]) rotate([0,0,30]) cylinder(r=2, h=40, $fn=6);


// pretty cutout
translate([-10,27,0]) rotate([-23,0,0]) cube([20,12,50]);
translate([0,27,6]) rotate([0,23,0]) cube([20,12,50]);

// pretty cutout
translate([-10,-66,0]) rotate([-23,0,0]) cube([12,20,90]);

}
}
